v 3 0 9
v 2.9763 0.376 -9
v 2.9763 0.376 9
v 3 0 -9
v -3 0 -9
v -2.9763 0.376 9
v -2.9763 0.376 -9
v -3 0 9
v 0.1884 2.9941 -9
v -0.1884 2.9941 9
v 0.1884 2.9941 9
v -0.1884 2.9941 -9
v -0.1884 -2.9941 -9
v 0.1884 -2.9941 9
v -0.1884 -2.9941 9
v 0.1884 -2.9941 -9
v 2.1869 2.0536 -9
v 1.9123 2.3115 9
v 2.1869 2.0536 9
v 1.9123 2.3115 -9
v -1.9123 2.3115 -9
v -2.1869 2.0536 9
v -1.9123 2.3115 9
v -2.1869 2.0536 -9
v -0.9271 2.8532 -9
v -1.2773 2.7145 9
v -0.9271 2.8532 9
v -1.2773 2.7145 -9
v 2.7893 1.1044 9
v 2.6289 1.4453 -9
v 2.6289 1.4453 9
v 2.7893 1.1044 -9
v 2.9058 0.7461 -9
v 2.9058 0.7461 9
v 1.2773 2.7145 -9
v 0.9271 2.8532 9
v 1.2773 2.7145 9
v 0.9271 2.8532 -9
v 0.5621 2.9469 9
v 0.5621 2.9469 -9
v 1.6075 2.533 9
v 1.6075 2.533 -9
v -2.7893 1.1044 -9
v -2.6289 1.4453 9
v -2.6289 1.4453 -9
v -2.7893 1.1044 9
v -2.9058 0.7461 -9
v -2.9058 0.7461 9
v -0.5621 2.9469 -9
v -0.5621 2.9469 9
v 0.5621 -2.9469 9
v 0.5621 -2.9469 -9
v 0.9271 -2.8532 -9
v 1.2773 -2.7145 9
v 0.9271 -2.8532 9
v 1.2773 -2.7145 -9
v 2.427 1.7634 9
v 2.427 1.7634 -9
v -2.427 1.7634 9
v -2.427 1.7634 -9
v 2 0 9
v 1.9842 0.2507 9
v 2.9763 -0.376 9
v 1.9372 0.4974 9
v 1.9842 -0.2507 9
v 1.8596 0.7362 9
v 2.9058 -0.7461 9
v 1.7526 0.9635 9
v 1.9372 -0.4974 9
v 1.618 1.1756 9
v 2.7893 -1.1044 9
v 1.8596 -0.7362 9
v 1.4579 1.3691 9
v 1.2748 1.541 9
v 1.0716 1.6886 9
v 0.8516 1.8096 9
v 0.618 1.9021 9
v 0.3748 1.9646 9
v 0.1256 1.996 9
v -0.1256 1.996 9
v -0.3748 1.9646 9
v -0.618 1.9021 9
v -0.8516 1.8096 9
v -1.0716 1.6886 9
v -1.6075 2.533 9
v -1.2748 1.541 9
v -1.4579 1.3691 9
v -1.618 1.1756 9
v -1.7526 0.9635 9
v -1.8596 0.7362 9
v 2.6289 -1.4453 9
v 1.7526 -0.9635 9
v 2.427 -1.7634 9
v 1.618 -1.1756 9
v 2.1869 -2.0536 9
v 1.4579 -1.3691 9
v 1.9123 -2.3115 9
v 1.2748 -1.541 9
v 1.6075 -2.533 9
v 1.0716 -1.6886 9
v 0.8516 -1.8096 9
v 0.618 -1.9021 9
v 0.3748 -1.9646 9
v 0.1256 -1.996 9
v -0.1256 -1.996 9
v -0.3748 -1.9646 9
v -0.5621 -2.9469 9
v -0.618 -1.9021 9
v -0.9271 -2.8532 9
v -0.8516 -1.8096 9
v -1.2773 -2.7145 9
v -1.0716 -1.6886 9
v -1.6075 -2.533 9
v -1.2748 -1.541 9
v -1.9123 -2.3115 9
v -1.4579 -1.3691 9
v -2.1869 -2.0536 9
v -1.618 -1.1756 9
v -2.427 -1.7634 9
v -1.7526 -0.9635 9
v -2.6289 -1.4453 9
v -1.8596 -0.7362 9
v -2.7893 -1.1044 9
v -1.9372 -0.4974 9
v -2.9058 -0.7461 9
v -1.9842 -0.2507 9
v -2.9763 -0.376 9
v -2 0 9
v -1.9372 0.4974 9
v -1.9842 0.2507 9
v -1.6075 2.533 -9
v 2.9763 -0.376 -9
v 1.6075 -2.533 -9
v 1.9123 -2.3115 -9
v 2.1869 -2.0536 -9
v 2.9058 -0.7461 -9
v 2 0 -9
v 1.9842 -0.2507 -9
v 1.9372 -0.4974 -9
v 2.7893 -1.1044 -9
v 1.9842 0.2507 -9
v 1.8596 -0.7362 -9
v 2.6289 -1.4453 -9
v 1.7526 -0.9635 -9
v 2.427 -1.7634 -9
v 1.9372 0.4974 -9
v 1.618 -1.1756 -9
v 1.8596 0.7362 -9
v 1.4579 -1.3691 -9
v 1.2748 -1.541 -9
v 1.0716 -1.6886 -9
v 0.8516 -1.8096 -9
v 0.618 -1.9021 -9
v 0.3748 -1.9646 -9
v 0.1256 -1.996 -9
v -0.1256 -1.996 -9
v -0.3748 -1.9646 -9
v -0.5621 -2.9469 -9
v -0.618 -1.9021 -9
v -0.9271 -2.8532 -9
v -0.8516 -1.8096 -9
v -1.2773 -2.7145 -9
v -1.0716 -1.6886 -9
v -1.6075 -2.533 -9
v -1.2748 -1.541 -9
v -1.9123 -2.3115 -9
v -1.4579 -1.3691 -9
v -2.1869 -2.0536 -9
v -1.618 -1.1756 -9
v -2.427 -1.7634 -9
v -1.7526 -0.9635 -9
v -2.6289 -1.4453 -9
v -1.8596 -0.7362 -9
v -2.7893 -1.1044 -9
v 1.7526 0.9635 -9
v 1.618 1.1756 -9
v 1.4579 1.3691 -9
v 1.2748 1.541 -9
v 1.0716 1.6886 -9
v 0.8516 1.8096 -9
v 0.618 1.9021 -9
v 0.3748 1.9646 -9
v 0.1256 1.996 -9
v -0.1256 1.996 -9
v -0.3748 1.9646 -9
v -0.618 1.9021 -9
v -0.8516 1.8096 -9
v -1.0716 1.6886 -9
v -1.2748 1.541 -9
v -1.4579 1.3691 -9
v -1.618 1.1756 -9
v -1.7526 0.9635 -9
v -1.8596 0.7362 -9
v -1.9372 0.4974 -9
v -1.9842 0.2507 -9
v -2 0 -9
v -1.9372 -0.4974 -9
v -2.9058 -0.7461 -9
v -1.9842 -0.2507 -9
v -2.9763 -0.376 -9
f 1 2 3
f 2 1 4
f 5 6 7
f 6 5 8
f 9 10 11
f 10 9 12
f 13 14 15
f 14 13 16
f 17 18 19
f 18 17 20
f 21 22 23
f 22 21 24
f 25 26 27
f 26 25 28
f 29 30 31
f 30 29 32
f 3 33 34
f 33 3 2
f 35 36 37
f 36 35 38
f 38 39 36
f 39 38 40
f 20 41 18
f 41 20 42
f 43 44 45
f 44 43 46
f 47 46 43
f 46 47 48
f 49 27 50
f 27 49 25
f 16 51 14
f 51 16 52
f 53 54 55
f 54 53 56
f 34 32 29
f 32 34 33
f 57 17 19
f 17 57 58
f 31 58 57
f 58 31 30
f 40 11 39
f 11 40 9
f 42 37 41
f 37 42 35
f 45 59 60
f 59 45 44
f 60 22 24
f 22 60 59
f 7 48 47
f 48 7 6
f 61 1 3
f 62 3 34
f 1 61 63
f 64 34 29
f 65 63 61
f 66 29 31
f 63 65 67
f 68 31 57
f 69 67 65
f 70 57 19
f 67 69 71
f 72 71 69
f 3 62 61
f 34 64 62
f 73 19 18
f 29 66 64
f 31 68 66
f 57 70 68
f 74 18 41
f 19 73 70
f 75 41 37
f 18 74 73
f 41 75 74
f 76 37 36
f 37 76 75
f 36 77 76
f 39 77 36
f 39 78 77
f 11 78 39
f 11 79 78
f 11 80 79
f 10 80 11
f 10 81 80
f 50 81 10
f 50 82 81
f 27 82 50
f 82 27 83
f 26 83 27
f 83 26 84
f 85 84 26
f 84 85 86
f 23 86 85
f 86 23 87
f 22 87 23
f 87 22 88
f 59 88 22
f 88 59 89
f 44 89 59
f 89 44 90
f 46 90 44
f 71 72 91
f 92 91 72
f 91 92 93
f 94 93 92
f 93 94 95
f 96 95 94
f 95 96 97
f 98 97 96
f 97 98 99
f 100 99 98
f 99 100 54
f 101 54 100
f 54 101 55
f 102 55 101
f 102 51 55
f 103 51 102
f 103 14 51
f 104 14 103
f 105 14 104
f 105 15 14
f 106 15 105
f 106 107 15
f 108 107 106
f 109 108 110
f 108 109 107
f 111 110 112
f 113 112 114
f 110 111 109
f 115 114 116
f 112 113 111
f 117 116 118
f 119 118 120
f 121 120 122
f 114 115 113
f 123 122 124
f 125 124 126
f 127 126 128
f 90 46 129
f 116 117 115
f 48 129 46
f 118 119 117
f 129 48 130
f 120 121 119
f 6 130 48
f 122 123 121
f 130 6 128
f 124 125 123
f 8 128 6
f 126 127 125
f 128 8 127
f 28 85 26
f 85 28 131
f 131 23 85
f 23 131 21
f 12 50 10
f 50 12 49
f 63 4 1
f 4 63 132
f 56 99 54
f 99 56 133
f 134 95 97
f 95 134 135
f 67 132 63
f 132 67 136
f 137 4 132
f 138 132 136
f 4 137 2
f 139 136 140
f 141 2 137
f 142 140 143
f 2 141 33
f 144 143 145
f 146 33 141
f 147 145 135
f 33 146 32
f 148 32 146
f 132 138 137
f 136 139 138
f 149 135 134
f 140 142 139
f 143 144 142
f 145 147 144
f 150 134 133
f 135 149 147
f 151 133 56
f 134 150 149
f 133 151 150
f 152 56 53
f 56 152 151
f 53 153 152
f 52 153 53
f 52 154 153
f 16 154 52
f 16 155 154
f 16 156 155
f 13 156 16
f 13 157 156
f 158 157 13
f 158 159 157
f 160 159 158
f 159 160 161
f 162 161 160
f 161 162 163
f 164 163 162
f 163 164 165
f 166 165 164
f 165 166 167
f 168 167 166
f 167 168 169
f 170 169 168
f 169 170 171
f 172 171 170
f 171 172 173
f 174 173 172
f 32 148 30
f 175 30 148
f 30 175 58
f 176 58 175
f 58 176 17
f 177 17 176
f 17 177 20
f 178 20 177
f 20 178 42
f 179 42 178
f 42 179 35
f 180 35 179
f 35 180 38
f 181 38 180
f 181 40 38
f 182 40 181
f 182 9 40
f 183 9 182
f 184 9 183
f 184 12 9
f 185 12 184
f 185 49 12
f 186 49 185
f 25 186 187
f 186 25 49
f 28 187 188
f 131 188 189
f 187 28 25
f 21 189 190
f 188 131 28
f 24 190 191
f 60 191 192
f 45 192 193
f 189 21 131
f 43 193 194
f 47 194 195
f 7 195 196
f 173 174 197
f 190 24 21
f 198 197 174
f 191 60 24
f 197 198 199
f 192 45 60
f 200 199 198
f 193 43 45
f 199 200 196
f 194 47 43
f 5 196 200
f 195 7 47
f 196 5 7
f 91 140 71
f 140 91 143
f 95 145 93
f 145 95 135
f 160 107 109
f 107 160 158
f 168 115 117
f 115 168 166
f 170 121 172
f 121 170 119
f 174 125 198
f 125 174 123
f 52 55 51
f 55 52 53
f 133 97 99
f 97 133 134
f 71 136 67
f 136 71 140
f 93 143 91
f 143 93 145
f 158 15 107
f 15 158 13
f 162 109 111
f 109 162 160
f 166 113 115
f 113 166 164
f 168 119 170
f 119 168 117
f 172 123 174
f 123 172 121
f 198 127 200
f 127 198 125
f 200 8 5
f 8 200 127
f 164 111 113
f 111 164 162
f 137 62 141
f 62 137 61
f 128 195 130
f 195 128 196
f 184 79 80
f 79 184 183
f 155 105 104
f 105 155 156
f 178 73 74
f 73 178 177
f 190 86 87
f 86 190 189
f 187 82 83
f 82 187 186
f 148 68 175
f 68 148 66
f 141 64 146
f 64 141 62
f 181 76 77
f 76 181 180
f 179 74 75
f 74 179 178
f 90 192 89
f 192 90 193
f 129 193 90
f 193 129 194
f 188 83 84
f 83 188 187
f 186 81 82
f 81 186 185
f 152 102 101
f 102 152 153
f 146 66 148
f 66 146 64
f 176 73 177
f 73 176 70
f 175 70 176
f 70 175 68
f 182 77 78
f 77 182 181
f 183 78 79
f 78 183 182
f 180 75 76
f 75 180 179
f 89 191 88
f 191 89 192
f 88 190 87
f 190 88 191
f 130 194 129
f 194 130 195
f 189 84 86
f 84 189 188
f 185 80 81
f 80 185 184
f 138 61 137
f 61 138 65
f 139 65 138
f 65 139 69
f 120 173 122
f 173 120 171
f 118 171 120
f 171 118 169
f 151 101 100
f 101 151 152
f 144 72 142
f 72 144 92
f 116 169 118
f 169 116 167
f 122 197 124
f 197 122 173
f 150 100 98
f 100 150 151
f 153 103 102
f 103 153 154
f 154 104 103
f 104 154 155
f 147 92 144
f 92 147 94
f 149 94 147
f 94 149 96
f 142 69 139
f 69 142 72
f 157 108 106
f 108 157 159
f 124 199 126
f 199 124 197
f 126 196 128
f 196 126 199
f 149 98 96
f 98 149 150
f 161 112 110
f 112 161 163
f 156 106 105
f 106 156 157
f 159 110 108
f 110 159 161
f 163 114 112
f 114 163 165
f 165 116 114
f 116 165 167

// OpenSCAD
$fn = 50;


difference() {
	union() {
		translate(v = [0, 0, -9.0000000000]) {
			cylinder(h = 18, r = 3.0000000000);
		}
	}
	union() {
		translate(v = [0, 0, -100.0000000000]) {
			cylinder(h = 200, r = 2);
		}
	}
}
